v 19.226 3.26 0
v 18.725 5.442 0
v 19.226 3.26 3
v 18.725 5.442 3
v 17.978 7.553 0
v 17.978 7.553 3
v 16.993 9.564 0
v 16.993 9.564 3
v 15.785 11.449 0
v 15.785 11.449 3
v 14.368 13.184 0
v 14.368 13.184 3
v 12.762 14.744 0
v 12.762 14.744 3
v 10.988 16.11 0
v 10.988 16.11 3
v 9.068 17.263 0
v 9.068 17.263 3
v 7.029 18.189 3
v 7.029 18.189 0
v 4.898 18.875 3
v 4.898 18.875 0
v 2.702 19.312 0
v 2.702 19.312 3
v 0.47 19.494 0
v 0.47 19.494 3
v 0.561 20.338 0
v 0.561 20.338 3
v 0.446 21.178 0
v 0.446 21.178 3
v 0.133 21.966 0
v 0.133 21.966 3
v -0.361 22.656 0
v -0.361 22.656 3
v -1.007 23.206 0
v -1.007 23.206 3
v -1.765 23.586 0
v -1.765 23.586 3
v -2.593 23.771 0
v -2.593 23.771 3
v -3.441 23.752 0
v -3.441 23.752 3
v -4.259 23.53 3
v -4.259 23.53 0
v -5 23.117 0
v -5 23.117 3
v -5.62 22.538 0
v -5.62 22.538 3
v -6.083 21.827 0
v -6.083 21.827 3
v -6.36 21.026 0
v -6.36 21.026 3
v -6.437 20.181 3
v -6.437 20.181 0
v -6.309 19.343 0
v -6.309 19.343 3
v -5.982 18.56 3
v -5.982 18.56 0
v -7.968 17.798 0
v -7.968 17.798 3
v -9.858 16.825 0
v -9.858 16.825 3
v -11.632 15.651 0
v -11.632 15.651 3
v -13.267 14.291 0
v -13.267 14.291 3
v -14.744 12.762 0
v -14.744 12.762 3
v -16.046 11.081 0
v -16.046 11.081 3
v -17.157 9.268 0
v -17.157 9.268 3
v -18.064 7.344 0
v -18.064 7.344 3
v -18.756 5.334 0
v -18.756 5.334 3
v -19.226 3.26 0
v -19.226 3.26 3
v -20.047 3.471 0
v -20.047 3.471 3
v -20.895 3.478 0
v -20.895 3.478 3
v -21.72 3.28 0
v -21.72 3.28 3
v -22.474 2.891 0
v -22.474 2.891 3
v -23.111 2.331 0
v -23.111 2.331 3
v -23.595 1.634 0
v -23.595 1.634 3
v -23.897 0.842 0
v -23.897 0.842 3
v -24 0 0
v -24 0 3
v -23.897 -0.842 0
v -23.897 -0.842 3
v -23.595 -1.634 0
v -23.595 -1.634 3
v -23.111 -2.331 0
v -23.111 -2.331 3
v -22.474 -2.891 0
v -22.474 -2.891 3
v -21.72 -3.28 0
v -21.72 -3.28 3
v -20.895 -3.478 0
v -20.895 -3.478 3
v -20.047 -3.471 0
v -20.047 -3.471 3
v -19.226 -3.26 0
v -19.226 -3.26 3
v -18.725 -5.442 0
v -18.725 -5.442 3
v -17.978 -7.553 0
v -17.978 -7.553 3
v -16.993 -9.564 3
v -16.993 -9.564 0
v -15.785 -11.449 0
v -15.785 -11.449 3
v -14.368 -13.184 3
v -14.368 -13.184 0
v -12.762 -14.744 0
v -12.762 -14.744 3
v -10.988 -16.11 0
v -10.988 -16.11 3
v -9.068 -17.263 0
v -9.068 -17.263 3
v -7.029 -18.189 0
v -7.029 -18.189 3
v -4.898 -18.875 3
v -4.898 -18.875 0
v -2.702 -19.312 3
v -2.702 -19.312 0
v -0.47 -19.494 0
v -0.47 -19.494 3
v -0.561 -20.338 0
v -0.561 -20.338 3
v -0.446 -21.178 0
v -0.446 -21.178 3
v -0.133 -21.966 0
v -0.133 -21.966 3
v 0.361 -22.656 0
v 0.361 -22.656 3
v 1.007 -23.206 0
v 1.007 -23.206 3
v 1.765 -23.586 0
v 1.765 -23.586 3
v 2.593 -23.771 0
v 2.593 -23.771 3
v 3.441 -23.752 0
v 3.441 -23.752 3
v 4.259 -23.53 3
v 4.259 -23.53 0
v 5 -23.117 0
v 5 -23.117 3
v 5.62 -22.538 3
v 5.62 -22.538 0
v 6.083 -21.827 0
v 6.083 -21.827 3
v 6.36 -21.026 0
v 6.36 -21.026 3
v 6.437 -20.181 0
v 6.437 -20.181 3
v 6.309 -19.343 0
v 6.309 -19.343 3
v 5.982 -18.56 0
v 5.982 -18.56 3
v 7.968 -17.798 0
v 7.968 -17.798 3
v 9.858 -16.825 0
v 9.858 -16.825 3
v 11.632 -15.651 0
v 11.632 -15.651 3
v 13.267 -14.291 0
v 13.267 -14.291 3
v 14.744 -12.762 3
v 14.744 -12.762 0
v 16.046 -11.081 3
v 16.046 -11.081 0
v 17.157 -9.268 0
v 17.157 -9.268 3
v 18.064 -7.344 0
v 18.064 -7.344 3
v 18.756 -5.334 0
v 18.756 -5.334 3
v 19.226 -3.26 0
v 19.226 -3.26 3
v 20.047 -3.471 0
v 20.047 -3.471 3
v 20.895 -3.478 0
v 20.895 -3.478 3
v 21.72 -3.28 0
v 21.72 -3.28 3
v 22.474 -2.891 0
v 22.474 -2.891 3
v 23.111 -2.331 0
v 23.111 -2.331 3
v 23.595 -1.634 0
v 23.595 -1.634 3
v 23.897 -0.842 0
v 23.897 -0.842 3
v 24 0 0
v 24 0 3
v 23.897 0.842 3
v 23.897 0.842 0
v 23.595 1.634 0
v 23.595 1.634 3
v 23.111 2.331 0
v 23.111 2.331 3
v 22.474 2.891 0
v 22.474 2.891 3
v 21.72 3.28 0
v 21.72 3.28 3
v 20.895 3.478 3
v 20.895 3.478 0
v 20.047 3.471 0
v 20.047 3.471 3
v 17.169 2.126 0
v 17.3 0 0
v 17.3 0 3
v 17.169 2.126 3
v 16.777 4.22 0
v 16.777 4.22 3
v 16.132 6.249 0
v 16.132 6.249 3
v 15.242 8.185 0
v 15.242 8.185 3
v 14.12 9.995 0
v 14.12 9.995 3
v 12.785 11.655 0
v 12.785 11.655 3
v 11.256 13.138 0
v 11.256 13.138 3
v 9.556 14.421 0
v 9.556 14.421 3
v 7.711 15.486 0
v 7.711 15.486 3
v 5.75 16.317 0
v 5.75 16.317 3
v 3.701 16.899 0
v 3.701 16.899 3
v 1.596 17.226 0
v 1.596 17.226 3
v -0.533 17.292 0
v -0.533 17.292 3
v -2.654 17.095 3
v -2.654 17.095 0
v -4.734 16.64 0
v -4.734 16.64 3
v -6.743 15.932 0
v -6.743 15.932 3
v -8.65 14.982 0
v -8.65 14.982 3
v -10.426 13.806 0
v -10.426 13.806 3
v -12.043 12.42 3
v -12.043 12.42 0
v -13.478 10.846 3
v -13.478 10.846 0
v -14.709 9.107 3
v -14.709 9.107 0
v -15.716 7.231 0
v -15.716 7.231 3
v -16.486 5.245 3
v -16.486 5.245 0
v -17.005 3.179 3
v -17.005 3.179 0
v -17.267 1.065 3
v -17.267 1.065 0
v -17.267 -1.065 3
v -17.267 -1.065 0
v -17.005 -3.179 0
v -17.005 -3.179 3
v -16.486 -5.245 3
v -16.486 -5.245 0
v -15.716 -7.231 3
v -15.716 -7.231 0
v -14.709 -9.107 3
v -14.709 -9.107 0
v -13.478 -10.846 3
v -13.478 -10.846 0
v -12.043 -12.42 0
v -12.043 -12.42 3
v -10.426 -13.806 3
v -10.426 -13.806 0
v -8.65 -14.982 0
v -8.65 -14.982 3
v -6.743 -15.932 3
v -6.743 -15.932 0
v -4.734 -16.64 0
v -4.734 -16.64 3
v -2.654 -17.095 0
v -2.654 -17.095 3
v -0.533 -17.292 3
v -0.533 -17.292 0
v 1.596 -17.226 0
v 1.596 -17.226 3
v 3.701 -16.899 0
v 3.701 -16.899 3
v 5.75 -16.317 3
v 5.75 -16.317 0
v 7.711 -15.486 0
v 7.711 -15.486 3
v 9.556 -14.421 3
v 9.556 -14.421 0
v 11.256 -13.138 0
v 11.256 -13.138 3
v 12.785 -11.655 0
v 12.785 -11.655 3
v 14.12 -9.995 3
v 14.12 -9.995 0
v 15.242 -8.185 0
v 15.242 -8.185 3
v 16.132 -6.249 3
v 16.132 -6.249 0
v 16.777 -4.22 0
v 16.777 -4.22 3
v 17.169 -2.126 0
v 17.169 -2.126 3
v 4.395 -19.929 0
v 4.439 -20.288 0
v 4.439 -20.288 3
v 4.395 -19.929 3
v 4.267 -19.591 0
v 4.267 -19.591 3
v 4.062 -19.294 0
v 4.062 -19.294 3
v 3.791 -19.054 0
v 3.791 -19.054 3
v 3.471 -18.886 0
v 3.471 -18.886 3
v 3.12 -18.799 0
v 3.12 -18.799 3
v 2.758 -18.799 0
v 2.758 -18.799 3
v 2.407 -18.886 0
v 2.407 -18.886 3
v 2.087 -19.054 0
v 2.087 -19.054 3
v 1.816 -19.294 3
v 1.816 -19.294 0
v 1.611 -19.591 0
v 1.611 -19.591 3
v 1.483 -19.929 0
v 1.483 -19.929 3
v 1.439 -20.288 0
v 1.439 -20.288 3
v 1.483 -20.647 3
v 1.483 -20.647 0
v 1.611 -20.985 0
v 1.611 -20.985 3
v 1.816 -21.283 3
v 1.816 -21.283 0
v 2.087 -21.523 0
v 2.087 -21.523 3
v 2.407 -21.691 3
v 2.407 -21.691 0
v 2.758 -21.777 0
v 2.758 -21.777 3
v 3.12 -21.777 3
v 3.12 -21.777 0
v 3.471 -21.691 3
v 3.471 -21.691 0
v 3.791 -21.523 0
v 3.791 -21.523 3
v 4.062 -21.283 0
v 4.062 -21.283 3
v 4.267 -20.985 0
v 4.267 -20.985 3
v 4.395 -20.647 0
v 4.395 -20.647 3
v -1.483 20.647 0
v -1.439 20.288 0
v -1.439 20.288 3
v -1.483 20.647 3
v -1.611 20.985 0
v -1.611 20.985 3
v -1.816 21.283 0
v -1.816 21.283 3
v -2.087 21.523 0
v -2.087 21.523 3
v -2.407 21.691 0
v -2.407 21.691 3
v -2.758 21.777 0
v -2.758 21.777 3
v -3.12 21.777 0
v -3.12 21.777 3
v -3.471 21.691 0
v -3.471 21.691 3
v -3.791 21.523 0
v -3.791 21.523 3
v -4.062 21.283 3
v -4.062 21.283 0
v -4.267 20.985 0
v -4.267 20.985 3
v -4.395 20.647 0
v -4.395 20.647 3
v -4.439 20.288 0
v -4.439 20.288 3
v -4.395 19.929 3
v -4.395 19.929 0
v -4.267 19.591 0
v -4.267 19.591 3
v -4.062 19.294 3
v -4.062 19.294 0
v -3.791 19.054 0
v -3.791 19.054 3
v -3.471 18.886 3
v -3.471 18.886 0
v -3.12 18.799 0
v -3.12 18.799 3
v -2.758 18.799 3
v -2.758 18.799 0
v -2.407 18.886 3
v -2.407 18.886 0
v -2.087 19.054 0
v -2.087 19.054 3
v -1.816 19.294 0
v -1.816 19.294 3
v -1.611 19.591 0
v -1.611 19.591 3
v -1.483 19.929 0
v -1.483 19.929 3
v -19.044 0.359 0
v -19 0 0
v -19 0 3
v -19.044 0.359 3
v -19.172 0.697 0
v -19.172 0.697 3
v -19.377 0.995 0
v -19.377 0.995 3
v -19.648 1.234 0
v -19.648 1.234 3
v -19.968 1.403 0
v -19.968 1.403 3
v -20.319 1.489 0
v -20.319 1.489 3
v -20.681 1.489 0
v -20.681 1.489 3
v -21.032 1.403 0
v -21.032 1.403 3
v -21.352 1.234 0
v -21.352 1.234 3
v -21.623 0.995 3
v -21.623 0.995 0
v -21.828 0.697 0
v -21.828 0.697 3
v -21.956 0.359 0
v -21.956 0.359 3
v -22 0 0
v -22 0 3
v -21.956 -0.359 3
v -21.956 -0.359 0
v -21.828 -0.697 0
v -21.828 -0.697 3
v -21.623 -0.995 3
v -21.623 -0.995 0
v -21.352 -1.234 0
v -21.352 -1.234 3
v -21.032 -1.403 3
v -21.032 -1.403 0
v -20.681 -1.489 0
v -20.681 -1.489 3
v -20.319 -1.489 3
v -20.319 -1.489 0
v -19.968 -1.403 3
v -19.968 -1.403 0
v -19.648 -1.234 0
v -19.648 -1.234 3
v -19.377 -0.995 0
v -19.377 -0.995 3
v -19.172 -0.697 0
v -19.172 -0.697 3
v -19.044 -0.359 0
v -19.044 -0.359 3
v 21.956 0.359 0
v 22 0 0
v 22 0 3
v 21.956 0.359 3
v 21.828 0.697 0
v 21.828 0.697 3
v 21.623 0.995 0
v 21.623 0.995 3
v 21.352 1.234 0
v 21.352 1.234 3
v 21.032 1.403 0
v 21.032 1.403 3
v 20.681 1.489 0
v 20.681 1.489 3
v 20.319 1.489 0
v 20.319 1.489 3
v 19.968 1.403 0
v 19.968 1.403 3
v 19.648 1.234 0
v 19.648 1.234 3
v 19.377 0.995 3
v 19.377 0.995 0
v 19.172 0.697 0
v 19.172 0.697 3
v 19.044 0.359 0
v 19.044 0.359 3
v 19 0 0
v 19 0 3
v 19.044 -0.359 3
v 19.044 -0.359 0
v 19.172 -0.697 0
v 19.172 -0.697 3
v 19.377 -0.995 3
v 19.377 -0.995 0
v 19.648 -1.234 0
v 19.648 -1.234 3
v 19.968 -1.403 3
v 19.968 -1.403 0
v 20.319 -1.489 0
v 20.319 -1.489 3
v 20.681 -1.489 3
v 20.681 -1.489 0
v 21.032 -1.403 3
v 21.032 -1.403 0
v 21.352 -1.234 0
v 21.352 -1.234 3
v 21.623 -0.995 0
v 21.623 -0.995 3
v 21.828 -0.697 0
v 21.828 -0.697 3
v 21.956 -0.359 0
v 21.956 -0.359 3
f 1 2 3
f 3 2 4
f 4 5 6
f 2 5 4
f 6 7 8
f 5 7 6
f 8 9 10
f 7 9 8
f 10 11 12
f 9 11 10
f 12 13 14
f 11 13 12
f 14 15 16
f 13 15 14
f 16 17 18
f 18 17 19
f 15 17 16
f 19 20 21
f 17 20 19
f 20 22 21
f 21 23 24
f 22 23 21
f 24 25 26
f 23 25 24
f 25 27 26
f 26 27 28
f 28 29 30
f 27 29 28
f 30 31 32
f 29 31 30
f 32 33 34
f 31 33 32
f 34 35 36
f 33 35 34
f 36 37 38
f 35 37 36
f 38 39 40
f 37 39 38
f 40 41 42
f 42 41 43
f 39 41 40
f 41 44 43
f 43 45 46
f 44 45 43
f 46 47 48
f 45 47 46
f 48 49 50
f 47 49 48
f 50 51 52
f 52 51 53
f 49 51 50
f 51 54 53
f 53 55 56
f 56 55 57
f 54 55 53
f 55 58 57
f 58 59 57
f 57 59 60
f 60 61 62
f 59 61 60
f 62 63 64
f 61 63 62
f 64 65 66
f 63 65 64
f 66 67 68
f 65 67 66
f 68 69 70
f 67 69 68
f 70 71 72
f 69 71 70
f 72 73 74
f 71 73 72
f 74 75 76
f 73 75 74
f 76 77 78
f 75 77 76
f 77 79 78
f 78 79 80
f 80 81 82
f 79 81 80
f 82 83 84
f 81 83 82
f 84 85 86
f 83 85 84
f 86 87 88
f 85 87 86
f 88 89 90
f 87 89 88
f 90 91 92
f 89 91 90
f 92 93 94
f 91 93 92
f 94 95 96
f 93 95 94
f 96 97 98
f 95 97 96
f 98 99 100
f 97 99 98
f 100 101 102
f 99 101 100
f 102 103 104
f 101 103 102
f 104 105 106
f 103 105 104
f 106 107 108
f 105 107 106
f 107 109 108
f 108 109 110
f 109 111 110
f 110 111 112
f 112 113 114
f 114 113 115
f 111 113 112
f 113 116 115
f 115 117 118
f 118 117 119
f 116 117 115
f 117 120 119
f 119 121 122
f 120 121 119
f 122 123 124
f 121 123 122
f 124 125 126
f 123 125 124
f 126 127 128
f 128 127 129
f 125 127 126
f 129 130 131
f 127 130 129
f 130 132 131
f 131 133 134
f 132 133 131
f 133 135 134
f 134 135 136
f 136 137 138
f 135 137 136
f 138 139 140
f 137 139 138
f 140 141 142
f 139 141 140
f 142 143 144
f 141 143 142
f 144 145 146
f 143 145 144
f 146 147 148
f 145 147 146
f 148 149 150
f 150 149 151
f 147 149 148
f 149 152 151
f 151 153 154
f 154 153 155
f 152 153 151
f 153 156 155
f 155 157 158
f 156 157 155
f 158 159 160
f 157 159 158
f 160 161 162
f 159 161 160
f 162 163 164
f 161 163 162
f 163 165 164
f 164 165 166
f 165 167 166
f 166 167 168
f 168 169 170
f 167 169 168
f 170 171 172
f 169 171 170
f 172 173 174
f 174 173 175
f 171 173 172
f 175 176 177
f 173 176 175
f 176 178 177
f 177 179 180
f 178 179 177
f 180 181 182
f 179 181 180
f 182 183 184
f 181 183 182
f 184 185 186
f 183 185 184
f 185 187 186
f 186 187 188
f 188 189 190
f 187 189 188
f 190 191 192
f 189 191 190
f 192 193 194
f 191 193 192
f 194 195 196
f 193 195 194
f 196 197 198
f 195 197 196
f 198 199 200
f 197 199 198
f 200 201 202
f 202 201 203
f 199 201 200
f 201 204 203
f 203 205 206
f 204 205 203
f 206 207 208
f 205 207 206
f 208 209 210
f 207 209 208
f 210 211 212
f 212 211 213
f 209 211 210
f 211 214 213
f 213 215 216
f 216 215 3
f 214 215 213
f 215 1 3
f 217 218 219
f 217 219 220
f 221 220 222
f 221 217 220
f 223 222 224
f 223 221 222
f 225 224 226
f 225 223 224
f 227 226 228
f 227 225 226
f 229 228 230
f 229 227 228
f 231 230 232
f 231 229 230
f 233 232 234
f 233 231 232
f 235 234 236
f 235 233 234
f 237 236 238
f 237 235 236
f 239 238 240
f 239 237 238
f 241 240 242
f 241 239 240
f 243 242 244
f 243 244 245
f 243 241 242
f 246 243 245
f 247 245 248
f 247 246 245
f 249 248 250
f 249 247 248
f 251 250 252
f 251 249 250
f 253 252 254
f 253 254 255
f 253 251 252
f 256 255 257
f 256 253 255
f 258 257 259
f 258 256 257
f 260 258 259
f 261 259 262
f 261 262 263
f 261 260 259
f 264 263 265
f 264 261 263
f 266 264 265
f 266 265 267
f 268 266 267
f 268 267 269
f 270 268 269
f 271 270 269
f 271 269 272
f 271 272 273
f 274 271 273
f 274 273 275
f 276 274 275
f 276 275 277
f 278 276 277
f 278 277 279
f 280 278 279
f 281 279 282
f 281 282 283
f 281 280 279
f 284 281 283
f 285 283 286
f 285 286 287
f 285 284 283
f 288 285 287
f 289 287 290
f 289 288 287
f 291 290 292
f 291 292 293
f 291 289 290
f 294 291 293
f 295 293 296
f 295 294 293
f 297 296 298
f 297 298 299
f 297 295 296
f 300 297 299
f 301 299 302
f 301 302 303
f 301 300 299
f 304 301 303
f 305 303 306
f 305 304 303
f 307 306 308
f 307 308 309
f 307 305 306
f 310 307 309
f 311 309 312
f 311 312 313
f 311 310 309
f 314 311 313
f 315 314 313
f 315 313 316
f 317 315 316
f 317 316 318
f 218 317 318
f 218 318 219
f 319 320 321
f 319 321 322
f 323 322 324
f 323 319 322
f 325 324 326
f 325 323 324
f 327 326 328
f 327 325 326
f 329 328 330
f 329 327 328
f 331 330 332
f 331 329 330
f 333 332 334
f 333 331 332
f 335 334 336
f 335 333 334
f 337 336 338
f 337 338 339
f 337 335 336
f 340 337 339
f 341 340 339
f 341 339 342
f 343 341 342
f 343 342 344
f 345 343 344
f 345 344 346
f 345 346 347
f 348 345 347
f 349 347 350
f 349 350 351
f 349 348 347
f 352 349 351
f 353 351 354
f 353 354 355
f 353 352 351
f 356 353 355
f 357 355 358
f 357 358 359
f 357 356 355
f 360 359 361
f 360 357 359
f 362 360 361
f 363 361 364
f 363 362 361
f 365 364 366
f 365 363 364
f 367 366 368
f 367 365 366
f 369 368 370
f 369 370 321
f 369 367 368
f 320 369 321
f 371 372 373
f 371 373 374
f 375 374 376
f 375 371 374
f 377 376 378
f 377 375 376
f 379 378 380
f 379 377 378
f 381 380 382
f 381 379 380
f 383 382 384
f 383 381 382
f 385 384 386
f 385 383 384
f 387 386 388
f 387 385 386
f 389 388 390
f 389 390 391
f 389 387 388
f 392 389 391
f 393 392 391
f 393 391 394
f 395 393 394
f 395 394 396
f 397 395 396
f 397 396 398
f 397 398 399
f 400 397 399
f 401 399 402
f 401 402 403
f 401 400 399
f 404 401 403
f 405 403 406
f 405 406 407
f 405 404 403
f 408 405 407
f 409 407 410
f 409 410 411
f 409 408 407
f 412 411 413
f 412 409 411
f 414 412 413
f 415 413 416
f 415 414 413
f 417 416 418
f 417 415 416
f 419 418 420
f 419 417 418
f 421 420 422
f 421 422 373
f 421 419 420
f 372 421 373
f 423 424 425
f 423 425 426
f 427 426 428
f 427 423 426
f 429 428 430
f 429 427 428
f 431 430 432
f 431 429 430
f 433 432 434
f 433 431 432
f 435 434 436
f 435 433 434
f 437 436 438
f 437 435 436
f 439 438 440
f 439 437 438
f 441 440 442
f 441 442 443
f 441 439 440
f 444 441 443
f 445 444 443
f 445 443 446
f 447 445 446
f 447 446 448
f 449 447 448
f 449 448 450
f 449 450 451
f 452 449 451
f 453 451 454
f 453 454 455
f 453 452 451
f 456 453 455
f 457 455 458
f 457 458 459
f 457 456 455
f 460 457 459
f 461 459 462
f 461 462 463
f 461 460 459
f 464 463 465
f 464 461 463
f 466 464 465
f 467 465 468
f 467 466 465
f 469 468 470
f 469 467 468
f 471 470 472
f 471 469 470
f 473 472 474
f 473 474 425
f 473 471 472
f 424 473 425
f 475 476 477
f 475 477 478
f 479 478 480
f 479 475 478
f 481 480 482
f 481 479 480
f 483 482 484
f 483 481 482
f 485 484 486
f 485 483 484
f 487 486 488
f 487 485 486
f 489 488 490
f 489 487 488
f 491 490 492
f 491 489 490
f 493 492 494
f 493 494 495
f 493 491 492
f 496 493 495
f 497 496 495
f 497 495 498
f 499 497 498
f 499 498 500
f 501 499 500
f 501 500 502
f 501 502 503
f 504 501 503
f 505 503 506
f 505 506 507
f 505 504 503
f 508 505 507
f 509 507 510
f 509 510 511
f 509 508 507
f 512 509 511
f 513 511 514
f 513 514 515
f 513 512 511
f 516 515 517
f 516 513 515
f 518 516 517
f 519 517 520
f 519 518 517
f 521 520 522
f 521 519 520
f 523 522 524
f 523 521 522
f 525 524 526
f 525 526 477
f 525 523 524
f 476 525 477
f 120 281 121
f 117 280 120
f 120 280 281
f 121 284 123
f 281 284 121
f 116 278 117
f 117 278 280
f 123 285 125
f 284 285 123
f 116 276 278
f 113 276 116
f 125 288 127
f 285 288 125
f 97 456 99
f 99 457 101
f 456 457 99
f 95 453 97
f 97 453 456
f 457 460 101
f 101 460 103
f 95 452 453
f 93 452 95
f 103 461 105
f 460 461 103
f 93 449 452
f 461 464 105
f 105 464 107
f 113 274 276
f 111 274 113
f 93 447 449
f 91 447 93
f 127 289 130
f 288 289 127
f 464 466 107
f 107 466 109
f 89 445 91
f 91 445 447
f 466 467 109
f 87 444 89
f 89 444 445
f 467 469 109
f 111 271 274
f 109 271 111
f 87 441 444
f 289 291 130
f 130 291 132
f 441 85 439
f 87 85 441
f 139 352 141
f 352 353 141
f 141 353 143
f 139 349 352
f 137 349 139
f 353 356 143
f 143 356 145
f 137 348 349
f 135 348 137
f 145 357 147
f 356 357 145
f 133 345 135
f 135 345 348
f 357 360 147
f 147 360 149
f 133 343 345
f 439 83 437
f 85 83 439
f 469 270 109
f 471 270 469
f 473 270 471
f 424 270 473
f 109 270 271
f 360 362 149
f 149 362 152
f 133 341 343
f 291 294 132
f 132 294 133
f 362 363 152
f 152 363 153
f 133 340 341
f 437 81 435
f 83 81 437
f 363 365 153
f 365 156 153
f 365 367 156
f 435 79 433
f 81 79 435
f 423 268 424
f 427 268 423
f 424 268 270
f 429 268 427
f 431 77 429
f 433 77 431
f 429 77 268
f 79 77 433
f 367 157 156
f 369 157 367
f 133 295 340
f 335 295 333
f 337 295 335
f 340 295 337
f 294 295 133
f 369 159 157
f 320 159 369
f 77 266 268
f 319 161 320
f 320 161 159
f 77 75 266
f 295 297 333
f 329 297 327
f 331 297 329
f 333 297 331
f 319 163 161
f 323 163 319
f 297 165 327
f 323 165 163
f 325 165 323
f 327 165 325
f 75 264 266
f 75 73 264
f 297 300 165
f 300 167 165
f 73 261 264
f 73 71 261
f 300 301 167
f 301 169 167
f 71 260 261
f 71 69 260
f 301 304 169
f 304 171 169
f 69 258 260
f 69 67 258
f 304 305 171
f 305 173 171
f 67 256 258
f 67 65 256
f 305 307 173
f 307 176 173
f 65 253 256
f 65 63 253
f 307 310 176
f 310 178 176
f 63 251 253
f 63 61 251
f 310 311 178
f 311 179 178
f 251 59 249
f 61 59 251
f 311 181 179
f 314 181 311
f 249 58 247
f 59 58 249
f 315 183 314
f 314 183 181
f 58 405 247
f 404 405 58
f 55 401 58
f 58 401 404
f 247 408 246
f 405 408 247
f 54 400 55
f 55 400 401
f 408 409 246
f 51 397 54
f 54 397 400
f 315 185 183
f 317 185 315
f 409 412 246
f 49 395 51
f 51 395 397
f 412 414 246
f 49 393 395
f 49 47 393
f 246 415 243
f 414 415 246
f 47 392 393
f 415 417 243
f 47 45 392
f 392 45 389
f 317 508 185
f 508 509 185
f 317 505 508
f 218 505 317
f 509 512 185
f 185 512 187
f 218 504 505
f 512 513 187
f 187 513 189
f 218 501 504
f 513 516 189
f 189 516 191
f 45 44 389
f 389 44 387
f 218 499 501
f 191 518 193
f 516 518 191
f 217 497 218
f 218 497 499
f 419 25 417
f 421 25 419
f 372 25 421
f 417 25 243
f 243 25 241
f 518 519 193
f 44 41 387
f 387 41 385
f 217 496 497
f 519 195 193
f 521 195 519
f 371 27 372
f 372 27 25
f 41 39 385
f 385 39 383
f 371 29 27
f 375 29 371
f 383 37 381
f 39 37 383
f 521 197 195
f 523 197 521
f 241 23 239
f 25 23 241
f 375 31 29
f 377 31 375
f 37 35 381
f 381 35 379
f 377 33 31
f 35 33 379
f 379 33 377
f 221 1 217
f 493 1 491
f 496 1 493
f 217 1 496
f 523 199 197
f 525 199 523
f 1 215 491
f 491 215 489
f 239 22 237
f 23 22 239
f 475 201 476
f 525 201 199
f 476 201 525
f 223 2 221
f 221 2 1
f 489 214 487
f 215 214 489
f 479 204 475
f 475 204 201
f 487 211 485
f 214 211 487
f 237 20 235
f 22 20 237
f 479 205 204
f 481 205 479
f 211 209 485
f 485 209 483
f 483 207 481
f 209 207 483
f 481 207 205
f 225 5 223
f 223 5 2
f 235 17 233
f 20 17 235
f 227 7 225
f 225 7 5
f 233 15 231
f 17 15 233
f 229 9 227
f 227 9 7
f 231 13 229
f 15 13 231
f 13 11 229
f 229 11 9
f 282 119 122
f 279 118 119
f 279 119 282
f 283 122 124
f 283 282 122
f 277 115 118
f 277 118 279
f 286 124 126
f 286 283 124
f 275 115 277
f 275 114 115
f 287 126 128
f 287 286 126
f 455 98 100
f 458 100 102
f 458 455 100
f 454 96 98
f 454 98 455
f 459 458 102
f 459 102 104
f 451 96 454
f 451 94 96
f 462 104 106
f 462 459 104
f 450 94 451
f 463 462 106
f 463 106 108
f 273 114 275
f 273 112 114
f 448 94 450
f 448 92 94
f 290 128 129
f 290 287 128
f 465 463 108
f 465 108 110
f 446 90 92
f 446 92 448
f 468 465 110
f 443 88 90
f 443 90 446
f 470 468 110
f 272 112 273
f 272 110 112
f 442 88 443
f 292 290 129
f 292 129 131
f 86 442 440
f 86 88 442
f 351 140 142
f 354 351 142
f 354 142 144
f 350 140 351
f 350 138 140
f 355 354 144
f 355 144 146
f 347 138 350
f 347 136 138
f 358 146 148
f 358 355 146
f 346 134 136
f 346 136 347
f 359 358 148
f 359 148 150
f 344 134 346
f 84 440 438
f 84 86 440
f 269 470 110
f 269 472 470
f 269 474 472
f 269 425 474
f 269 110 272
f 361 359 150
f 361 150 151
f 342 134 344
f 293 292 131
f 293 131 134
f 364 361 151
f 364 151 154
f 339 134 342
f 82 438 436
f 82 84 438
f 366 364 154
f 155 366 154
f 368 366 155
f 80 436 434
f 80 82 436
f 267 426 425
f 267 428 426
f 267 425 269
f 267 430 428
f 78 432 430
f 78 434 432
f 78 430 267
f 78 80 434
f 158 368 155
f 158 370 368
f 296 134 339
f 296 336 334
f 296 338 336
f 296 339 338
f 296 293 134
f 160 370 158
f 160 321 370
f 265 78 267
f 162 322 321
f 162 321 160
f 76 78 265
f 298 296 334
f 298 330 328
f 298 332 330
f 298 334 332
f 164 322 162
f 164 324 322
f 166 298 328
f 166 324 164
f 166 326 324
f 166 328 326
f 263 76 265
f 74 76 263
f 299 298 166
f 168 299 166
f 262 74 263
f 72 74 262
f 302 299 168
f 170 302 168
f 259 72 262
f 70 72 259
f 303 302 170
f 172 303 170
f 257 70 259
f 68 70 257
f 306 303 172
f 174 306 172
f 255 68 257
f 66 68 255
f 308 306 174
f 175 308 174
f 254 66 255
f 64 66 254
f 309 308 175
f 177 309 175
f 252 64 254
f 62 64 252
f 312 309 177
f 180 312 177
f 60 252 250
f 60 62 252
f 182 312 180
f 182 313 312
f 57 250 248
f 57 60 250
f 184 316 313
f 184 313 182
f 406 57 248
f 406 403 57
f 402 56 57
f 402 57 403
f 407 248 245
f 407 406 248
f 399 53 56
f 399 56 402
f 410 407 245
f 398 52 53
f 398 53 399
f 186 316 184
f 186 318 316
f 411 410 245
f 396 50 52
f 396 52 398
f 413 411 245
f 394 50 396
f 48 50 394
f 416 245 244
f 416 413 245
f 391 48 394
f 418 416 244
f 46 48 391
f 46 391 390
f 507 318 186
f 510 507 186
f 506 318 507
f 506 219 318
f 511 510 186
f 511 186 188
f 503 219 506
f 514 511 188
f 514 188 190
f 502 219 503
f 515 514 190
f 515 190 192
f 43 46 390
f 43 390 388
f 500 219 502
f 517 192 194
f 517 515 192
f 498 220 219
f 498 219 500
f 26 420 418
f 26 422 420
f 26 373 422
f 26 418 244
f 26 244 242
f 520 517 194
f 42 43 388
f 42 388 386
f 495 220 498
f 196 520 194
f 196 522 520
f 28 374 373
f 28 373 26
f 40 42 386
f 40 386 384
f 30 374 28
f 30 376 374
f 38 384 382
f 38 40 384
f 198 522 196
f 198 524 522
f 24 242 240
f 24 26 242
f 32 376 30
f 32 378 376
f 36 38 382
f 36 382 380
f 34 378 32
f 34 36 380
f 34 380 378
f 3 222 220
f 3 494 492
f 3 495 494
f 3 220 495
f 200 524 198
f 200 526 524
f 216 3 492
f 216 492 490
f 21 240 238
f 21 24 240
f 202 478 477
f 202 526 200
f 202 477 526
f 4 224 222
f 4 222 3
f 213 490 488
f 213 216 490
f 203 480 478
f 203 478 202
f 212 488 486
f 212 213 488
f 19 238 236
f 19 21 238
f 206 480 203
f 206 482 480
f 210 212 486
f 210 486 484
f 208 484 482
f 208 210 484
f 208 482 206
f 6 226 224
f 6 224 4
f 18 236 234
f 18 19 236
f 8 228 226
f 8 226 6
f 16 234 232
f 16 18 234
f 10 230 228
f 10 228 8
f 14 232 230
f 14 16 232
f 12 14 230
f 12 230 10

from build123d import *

# Parameters (mm, degrees)
SKETCH_R   = 17.3
SKETCH_R_2 = 1.5
PAD_DEPTH  = 3


with BuildPart() as part:
    # Sketch → Pad (new body)
    with BuildSketch(Plane.XY):
        with BuildLine():
            ThreePointArc((19.22561, 3.259744), (12.761949, 14.743902), (0.46975, 19.494341))
            ThreePointArc((0.46975, 19.494341), (-3.440809, 23.75207), (-5.982388, 18.559661))
            ThreePointArc((-5.982388, 18.559661), (-14.743902, 12.761949), (-19.22561, 3.259744))
            ThreePointArc((-19.22561, 3.259744), (-24, 0), (-19.22561, -3.259744))
            ThreePointArc((-19.22561, -3.259744), (-12.761949, -14.743902), (-0.46975, -19.494341))
            ThreePointArc((-0.46975, -19.494341), (3.440809, -23.75207), (5.982388, -18.559661))
            ThreePointArc((5.982388, -18.559661), (14.743902, -12.761949), (19.22561, -3.259744))
            ThreePointArc((19.22561, -3.259744), (24, 0), (19.22561, 3.259744))
        make_face()
        Circle(SKETCH_R, mode=Mode.SUBTRACT)
        with Locations((20.5, 0)):
            Circle(SKETCH_R_2, mode=Mode.SUBTRACT)
        with Locations((-20.5, 0)):
            Circle(SKETCH_R_2, mode=Mode.SUBTRACT)
        with Locations((-2.939024, 20.288227)):
            Circle(SKETCH_R_2, mode=Mode.SUBTRACT)
        with Locations((2.939024, -20.288227)):
            Circle(SKETCH_R_2, mode=Mode.SUBTRACT)
    extrude(amount=PAD_DEPTH)


solid = part.part
